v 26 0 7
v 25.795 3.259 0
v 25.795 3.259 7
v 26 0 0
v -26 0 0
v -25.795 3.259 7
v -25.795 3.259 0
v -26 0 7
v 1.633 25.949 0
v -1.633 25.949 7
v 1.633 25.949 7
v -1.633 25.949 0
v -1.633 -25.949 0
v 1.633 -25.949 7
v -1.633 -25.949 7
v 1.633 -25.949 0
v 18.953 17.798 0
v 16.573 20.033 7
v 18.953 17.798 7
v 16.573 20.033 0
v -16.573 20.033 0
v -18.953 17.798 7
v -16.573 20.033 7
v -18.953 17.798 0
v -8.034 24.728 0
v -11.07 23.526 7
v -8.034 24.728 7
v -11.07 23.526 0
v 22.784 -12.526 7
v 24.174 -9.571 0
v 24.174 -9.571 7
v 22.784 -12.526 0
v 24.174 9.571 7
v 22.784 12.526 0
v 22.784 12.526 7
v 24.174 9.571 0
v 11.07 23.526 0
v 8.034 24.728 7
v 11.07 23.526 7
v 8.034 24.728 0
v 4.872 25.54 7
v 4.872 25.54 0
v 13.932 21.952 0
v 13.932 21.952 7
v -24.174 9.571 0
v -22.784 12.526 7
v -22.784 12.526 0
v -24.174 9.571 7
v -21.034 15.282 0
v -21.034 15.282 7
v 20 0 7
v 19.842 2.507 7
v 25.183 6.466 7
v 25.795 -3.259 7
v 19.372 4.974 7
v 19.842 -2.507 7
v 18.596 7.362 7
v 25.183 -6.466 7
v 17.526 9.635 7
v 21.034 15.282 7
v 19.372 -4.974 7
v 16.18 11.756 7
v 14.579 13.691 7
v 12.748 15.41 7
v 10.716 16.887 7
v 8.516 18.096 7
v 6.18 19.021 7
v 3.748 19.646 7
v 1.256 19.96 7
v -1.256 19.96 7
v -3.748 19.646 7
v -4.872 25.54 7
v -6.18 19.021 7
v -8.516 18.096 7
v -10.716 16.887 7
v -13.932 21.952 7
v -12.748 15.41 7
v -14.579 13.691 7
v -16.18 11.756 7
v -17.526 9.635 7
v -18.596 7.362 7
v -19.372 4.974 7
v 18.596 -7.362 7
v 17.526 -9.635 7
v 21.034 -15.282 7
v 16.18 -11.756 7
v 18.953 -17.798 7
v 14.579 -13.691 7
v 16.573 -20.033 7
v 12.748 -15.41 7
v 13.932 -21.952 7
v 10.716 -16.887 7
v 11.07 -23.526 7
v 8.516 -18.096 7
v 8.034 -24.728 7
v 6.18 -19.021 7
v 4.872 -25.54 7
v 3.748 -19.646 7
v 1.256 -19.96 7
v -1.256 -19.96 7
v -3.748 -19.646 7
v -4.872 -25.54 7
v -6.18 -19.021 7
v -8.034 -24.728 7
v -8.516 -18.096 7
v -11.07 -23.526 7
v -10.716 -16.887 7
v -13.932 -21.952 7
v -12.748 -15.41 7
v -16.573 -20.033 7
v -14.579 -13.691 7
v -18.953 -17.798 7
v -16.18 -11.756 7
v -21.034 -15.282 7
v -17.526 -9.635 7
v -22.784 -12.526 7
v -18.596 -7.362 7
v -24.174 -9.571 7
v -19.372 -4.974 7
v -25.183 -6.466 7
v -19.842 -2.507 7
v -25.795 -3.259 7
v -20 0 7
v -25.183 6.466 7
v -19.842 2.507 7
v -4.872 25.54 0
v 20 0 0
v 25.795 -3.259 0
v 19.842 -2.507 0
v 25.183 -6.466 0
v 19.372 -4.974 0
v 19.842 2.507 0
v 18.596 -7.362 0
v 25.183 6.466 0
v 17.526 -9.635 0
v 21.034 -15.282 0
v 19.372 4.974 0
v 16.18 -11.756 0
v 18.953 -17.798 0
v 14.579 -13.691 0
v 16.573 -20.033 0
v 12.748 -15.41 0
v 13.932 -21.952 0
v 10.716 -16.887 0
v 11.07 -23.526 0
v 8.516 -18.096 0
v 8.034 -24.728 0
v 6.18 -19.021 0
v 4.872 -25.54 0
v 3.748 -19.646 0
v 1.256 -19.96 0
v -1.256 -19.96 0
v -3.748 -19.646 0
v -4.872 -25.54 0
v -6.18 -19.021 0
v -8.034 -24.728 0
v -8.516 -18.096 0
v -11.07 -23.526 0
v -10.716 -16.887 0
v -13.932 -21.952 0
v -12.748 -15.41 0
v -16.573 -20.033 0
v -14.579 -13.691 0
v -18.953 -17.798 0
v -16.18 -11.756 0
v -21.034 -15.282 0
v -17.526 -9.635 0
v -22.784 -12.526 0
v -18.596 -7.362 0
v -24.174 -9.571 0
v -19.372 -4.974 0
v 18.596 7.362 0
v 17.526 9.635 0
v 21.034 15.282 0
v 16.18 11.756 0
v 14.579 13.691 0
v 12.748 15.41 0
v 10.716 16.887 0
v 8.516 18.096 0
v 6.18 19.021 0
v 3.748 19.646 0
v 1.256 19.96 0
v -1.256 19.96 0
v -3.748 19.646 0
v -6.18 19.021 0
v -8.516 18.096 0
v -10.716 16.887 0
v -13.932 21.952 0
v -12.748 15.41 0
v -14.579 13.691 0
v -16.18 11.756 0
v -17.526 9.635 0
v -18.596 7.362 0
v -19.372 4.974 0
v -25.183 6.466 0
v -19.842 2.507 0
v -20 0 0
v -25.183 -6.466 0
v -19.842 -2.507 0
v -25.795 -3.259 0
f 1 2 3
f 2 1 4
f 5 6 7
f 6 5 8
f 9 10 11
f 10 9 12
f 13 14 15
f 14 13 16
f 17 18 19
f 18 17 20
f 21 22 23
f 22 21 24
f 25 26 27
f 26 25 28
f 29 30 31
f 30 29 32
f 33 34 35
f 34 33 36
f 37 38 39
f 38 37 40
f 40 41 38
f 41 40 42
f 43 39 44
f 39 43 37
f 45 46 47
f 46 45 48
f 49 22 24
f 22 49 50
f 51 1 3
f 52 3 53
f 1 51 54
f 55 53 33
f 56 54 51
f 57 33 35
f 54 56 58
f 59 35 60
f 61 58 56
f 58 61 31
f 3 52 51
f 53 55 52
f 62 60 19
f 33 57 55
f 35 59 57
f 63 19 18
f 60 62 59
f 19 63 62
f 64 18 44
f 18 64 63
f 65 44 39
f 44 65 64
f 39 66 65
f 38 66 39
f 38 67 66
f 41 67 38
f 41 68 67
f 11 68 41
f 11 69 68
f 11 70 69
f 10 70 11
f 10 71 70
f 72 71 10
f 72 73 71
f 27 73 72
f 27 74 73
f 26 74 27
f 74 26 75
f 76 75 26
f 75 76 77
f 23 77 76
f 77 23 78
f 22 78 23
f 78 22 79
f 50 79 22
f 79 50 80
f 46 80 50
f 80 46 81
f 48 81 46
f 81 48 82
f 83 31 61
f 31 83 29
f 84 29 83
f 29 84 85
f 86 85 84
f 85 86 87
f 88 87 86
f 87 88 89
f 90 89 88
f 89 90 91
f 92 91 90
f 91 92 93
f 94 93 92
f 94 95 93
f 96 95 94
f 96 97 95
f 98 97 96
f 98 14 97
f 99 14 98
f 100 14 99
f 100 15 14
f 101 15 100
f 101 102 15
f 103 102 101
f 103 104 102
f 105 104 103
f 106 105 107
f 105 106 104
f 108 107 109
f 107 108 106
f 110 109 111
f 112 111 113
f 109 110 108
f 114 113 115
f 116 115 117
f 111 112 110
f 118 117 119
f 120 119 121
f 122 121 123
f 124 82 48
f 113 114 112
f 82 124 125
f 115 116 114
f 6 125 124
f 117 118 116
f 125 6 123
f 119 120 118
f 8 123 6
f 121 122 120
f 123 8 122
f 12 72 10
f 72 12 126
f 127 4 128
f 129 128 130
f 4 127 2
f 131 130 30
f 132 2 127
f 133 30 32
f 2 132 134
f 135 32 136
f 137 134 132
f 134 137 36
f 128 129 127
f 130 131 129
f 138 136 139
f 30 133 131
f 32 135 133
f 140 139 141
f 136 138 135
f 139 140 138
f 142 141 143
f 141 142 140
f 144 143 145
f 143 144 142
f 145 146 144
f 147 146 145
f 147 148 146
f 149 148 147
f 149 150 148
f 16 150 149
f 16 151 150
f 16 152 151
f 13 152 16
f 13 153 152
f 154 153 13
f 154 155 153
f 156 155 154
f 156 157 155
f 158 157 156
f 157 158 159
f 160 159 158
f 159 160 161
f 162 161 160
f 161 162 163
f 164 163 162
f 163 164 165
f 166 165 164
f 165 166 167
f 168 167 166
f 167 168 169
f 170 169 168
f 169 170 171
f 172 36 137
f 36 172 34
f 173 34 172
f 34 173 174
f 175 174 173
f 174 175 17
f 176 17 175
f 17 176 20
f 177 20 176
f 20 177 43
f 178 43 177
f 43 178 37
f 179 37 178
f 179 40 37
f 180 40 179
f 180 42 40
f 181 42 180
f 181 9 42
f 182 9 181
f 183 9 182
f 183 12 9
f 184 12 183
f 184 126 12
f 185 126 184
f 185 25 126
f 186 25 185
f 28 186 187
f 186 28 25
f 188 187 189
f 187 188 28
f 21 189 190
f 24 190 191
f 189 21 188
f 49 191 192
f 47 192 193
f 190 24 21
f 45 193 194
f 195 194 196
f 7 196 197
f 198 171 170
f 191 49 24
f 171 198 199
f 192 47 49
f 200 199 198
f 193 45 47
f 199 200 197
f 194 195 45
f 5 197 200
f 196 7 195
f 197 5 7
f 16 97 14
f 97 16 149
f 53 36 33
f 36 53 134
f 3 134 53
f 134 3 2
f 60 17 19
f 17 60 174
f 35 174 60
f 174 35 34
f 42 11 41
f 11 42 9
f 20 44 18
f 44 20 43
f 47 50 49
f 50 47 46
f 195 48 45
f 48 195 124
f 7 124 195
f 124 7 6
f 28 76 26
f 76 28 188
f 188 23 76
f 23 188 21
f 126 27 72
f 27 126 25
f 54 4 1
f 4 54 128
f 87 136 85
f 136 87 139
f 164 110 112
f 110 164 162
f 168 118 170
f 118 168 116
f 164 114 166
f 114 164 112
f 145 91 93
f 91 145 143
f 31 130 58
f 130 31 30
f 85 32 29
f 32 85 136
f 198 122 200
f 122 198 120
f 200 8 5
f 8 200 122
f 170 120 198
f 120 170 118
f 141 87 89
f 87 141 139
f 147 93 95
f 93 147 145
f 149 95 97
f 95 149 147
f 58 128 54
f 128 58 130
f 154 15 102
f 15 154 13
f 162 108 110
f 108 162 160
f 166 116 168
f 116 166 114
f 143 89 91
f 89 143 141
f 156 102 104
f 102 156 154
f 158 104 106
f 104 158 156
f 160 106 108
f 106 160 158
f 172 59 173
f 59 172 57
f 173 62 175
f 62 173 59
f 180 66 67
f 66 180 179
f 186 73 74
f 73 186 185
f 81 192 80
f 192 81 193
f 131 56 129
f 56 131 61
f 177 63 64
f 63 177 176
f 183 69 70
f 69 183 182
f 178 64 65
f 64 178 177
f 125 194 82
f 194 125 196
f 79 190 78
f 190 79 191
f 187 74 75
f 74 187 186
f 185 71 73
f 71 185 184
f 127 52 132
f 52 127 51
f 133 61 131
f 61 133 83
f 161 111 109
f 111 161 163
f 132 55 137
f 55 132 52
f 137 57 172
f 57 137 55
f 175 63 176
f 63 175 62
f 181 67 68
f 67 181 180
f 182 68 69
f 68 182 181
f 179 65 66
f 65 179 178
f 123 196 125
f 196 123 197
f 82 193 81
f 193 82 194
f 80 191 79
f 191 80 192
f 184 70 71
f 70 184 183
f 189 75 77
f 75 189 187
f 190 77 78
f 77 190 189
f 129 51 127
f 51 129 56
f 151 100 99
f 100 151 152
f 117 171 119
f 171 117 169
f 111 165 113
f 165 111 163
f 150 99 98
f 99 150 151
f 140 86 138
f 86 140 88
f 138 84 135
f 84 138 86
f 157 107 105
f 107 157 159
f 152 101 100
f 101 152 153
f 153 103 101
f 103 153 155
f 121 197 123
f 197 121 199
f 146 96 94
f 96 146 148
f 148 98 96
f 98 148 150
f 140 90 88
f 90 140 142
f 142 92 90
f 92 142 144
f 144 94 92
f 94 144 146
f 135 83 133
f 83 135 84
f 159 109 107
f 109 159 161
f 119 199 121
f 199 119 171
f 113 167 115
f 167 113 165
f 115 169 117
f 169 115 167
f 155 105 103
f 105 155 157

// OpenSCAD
$fn = 50;


difference() {
	union() {
		cylinder(h = 7, r = 26.0000000000);
	}
	union() {
		cylinder(h = 7, r = 20.0000000000);
	}
}
